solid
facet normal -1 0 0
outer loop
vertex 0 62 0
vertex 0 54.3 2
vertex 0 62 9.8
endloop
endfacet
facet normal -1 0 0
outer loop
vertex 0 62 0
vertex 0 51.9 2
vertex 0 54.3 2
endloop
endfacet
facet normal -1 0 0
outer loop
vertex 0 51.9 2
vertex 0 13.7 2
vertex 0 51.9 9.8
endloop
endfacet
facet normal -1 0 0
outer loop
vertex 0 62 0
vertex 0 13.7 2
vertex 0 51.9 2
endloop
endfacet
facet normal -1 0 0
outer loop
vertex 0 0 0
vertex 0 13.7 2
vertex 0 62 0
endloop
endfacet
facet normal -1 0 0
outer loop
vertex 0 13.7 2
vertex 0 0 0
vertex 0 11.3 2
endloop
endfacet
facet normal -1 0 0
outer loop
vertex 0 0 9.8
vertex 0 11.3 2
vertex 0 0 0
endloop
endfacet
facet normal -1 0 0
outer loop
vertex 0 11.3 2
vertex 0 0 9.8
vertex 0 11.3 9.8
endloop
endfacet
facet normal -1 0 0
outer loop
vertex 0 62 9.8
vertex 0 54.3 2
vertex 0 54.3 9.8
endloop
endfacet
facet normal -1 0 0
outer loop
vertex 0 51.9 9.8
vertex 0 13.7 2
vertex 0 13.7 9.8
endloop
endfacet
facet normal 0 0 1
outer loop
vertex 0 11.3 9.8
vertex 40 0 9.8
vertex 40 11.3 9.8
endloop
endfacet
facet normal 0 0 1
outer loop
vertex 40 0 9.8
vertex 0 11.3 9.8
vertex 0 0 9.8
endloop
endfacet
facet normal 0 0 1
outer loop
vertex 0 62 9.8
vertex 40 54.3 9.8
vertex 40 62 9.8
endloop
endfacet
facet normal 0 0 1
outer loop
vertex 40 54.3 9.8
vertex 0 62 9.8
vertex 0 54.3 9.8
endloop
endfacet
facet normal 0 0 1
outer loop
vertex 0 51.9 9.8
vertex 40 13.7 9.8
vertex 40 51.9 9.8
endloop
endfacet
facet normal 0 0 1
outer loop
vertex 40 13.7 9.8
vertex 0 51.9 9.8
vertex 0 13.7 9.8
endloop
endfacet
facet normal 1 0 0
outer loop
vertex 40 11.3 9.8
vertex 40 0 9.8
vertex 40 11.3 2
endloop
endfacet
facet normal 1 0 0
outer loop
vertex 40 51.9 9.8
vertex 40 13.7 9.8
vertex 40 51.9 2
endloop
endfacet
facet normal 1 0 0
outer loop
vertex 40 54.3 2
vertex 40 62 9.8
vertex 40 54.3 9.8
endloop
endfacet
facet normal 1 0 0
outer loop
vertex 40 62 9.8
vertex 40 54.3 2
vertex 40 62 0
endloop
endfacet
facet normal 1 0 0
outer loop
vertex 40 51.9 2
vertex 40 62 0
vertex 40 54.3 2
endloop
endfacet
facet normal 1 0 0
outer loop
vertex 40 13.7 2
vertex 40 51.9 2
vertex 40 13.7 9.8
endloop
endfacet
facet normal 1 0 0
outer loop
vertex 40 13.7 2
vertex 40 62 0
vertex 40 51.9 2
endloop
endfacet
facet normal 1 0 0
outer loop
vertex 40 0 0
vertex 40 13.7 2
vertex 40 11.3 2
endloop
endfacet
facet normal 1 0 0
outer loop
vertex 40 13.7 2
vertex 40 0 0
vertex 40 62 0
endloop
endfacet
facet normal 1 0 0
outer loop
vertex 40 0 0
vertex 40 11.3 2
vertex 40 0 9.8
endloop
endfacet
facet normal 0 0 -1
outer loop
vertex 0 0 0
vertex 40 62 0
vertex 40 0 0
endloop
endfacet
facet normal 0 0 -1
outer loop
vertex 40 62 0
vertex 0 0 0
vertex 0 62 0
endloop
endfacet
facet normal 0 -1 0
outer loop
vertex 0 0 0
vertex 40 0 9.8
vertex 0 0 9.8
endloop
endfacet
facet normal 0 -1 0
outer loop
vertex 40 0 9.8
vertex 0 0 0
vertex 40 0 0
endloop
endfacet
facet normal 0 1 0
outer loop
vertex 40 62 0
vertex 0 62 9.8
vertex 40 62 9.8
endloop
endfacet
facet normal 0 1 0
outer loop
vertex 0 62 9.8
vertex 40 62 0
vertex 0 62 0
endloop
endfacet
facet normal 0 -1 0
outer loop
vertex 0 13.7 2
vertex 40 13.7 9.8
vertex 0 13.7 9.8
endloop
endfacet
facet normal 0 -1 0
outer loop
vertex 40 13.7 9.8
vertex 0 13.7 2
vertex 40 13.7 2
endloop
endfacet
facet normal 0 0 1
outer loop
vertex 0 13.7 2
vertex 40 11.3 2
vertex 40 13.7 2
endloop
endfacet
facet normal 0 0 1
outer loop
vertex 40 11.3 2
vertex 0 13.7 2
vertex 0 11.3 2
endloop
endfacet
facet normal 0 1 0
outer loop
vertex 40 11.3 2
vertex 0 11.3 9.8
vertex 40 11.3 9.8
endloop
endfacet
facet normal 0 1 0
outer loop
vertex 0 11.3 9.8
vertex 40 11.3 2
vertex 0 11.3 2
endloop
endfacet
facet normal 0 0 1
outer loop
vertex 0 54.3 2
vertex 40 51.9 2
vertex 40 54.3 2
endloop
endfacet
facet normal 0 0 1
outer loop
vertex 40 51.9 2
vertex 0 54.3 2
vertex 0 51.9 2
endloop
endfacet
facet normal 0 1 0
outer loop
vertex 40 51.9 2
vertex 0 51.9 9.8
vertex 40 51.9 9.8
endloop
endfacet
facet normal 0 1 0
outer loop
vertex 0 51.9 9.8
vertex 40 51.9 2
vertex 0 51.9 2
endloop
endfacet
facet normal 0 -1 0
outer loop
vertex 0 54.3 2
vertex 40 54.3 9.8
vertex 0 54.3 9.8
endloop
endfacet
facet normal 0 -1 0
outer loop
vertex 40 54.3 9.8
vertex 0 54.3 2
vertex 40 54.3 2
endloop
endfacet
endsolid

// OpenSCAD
// 42mm OD, 37mm ID
// => 2.5mm walls

OD=42;
ID=37;
wallThickness=((OD-ID)/2) - 0.1;

blockWidth=40;
height=9.8; // test fit 1
blockOverlap=20;


difference() {
  cube([blockWidth, OD+blockOverlap, height]);

  translate([-1, (OD+blockOverlap)/2 - ((ID+wallThickness)/2), 2])
  cube([blockWidth+2, wallThickness, height]);

  translate([-1, (OD+blockOverlap+wallThickness)/2 + ((ID+wallThickness)/2), 2])
  cube([blockWidth+2, wallThickness, height]);
}
